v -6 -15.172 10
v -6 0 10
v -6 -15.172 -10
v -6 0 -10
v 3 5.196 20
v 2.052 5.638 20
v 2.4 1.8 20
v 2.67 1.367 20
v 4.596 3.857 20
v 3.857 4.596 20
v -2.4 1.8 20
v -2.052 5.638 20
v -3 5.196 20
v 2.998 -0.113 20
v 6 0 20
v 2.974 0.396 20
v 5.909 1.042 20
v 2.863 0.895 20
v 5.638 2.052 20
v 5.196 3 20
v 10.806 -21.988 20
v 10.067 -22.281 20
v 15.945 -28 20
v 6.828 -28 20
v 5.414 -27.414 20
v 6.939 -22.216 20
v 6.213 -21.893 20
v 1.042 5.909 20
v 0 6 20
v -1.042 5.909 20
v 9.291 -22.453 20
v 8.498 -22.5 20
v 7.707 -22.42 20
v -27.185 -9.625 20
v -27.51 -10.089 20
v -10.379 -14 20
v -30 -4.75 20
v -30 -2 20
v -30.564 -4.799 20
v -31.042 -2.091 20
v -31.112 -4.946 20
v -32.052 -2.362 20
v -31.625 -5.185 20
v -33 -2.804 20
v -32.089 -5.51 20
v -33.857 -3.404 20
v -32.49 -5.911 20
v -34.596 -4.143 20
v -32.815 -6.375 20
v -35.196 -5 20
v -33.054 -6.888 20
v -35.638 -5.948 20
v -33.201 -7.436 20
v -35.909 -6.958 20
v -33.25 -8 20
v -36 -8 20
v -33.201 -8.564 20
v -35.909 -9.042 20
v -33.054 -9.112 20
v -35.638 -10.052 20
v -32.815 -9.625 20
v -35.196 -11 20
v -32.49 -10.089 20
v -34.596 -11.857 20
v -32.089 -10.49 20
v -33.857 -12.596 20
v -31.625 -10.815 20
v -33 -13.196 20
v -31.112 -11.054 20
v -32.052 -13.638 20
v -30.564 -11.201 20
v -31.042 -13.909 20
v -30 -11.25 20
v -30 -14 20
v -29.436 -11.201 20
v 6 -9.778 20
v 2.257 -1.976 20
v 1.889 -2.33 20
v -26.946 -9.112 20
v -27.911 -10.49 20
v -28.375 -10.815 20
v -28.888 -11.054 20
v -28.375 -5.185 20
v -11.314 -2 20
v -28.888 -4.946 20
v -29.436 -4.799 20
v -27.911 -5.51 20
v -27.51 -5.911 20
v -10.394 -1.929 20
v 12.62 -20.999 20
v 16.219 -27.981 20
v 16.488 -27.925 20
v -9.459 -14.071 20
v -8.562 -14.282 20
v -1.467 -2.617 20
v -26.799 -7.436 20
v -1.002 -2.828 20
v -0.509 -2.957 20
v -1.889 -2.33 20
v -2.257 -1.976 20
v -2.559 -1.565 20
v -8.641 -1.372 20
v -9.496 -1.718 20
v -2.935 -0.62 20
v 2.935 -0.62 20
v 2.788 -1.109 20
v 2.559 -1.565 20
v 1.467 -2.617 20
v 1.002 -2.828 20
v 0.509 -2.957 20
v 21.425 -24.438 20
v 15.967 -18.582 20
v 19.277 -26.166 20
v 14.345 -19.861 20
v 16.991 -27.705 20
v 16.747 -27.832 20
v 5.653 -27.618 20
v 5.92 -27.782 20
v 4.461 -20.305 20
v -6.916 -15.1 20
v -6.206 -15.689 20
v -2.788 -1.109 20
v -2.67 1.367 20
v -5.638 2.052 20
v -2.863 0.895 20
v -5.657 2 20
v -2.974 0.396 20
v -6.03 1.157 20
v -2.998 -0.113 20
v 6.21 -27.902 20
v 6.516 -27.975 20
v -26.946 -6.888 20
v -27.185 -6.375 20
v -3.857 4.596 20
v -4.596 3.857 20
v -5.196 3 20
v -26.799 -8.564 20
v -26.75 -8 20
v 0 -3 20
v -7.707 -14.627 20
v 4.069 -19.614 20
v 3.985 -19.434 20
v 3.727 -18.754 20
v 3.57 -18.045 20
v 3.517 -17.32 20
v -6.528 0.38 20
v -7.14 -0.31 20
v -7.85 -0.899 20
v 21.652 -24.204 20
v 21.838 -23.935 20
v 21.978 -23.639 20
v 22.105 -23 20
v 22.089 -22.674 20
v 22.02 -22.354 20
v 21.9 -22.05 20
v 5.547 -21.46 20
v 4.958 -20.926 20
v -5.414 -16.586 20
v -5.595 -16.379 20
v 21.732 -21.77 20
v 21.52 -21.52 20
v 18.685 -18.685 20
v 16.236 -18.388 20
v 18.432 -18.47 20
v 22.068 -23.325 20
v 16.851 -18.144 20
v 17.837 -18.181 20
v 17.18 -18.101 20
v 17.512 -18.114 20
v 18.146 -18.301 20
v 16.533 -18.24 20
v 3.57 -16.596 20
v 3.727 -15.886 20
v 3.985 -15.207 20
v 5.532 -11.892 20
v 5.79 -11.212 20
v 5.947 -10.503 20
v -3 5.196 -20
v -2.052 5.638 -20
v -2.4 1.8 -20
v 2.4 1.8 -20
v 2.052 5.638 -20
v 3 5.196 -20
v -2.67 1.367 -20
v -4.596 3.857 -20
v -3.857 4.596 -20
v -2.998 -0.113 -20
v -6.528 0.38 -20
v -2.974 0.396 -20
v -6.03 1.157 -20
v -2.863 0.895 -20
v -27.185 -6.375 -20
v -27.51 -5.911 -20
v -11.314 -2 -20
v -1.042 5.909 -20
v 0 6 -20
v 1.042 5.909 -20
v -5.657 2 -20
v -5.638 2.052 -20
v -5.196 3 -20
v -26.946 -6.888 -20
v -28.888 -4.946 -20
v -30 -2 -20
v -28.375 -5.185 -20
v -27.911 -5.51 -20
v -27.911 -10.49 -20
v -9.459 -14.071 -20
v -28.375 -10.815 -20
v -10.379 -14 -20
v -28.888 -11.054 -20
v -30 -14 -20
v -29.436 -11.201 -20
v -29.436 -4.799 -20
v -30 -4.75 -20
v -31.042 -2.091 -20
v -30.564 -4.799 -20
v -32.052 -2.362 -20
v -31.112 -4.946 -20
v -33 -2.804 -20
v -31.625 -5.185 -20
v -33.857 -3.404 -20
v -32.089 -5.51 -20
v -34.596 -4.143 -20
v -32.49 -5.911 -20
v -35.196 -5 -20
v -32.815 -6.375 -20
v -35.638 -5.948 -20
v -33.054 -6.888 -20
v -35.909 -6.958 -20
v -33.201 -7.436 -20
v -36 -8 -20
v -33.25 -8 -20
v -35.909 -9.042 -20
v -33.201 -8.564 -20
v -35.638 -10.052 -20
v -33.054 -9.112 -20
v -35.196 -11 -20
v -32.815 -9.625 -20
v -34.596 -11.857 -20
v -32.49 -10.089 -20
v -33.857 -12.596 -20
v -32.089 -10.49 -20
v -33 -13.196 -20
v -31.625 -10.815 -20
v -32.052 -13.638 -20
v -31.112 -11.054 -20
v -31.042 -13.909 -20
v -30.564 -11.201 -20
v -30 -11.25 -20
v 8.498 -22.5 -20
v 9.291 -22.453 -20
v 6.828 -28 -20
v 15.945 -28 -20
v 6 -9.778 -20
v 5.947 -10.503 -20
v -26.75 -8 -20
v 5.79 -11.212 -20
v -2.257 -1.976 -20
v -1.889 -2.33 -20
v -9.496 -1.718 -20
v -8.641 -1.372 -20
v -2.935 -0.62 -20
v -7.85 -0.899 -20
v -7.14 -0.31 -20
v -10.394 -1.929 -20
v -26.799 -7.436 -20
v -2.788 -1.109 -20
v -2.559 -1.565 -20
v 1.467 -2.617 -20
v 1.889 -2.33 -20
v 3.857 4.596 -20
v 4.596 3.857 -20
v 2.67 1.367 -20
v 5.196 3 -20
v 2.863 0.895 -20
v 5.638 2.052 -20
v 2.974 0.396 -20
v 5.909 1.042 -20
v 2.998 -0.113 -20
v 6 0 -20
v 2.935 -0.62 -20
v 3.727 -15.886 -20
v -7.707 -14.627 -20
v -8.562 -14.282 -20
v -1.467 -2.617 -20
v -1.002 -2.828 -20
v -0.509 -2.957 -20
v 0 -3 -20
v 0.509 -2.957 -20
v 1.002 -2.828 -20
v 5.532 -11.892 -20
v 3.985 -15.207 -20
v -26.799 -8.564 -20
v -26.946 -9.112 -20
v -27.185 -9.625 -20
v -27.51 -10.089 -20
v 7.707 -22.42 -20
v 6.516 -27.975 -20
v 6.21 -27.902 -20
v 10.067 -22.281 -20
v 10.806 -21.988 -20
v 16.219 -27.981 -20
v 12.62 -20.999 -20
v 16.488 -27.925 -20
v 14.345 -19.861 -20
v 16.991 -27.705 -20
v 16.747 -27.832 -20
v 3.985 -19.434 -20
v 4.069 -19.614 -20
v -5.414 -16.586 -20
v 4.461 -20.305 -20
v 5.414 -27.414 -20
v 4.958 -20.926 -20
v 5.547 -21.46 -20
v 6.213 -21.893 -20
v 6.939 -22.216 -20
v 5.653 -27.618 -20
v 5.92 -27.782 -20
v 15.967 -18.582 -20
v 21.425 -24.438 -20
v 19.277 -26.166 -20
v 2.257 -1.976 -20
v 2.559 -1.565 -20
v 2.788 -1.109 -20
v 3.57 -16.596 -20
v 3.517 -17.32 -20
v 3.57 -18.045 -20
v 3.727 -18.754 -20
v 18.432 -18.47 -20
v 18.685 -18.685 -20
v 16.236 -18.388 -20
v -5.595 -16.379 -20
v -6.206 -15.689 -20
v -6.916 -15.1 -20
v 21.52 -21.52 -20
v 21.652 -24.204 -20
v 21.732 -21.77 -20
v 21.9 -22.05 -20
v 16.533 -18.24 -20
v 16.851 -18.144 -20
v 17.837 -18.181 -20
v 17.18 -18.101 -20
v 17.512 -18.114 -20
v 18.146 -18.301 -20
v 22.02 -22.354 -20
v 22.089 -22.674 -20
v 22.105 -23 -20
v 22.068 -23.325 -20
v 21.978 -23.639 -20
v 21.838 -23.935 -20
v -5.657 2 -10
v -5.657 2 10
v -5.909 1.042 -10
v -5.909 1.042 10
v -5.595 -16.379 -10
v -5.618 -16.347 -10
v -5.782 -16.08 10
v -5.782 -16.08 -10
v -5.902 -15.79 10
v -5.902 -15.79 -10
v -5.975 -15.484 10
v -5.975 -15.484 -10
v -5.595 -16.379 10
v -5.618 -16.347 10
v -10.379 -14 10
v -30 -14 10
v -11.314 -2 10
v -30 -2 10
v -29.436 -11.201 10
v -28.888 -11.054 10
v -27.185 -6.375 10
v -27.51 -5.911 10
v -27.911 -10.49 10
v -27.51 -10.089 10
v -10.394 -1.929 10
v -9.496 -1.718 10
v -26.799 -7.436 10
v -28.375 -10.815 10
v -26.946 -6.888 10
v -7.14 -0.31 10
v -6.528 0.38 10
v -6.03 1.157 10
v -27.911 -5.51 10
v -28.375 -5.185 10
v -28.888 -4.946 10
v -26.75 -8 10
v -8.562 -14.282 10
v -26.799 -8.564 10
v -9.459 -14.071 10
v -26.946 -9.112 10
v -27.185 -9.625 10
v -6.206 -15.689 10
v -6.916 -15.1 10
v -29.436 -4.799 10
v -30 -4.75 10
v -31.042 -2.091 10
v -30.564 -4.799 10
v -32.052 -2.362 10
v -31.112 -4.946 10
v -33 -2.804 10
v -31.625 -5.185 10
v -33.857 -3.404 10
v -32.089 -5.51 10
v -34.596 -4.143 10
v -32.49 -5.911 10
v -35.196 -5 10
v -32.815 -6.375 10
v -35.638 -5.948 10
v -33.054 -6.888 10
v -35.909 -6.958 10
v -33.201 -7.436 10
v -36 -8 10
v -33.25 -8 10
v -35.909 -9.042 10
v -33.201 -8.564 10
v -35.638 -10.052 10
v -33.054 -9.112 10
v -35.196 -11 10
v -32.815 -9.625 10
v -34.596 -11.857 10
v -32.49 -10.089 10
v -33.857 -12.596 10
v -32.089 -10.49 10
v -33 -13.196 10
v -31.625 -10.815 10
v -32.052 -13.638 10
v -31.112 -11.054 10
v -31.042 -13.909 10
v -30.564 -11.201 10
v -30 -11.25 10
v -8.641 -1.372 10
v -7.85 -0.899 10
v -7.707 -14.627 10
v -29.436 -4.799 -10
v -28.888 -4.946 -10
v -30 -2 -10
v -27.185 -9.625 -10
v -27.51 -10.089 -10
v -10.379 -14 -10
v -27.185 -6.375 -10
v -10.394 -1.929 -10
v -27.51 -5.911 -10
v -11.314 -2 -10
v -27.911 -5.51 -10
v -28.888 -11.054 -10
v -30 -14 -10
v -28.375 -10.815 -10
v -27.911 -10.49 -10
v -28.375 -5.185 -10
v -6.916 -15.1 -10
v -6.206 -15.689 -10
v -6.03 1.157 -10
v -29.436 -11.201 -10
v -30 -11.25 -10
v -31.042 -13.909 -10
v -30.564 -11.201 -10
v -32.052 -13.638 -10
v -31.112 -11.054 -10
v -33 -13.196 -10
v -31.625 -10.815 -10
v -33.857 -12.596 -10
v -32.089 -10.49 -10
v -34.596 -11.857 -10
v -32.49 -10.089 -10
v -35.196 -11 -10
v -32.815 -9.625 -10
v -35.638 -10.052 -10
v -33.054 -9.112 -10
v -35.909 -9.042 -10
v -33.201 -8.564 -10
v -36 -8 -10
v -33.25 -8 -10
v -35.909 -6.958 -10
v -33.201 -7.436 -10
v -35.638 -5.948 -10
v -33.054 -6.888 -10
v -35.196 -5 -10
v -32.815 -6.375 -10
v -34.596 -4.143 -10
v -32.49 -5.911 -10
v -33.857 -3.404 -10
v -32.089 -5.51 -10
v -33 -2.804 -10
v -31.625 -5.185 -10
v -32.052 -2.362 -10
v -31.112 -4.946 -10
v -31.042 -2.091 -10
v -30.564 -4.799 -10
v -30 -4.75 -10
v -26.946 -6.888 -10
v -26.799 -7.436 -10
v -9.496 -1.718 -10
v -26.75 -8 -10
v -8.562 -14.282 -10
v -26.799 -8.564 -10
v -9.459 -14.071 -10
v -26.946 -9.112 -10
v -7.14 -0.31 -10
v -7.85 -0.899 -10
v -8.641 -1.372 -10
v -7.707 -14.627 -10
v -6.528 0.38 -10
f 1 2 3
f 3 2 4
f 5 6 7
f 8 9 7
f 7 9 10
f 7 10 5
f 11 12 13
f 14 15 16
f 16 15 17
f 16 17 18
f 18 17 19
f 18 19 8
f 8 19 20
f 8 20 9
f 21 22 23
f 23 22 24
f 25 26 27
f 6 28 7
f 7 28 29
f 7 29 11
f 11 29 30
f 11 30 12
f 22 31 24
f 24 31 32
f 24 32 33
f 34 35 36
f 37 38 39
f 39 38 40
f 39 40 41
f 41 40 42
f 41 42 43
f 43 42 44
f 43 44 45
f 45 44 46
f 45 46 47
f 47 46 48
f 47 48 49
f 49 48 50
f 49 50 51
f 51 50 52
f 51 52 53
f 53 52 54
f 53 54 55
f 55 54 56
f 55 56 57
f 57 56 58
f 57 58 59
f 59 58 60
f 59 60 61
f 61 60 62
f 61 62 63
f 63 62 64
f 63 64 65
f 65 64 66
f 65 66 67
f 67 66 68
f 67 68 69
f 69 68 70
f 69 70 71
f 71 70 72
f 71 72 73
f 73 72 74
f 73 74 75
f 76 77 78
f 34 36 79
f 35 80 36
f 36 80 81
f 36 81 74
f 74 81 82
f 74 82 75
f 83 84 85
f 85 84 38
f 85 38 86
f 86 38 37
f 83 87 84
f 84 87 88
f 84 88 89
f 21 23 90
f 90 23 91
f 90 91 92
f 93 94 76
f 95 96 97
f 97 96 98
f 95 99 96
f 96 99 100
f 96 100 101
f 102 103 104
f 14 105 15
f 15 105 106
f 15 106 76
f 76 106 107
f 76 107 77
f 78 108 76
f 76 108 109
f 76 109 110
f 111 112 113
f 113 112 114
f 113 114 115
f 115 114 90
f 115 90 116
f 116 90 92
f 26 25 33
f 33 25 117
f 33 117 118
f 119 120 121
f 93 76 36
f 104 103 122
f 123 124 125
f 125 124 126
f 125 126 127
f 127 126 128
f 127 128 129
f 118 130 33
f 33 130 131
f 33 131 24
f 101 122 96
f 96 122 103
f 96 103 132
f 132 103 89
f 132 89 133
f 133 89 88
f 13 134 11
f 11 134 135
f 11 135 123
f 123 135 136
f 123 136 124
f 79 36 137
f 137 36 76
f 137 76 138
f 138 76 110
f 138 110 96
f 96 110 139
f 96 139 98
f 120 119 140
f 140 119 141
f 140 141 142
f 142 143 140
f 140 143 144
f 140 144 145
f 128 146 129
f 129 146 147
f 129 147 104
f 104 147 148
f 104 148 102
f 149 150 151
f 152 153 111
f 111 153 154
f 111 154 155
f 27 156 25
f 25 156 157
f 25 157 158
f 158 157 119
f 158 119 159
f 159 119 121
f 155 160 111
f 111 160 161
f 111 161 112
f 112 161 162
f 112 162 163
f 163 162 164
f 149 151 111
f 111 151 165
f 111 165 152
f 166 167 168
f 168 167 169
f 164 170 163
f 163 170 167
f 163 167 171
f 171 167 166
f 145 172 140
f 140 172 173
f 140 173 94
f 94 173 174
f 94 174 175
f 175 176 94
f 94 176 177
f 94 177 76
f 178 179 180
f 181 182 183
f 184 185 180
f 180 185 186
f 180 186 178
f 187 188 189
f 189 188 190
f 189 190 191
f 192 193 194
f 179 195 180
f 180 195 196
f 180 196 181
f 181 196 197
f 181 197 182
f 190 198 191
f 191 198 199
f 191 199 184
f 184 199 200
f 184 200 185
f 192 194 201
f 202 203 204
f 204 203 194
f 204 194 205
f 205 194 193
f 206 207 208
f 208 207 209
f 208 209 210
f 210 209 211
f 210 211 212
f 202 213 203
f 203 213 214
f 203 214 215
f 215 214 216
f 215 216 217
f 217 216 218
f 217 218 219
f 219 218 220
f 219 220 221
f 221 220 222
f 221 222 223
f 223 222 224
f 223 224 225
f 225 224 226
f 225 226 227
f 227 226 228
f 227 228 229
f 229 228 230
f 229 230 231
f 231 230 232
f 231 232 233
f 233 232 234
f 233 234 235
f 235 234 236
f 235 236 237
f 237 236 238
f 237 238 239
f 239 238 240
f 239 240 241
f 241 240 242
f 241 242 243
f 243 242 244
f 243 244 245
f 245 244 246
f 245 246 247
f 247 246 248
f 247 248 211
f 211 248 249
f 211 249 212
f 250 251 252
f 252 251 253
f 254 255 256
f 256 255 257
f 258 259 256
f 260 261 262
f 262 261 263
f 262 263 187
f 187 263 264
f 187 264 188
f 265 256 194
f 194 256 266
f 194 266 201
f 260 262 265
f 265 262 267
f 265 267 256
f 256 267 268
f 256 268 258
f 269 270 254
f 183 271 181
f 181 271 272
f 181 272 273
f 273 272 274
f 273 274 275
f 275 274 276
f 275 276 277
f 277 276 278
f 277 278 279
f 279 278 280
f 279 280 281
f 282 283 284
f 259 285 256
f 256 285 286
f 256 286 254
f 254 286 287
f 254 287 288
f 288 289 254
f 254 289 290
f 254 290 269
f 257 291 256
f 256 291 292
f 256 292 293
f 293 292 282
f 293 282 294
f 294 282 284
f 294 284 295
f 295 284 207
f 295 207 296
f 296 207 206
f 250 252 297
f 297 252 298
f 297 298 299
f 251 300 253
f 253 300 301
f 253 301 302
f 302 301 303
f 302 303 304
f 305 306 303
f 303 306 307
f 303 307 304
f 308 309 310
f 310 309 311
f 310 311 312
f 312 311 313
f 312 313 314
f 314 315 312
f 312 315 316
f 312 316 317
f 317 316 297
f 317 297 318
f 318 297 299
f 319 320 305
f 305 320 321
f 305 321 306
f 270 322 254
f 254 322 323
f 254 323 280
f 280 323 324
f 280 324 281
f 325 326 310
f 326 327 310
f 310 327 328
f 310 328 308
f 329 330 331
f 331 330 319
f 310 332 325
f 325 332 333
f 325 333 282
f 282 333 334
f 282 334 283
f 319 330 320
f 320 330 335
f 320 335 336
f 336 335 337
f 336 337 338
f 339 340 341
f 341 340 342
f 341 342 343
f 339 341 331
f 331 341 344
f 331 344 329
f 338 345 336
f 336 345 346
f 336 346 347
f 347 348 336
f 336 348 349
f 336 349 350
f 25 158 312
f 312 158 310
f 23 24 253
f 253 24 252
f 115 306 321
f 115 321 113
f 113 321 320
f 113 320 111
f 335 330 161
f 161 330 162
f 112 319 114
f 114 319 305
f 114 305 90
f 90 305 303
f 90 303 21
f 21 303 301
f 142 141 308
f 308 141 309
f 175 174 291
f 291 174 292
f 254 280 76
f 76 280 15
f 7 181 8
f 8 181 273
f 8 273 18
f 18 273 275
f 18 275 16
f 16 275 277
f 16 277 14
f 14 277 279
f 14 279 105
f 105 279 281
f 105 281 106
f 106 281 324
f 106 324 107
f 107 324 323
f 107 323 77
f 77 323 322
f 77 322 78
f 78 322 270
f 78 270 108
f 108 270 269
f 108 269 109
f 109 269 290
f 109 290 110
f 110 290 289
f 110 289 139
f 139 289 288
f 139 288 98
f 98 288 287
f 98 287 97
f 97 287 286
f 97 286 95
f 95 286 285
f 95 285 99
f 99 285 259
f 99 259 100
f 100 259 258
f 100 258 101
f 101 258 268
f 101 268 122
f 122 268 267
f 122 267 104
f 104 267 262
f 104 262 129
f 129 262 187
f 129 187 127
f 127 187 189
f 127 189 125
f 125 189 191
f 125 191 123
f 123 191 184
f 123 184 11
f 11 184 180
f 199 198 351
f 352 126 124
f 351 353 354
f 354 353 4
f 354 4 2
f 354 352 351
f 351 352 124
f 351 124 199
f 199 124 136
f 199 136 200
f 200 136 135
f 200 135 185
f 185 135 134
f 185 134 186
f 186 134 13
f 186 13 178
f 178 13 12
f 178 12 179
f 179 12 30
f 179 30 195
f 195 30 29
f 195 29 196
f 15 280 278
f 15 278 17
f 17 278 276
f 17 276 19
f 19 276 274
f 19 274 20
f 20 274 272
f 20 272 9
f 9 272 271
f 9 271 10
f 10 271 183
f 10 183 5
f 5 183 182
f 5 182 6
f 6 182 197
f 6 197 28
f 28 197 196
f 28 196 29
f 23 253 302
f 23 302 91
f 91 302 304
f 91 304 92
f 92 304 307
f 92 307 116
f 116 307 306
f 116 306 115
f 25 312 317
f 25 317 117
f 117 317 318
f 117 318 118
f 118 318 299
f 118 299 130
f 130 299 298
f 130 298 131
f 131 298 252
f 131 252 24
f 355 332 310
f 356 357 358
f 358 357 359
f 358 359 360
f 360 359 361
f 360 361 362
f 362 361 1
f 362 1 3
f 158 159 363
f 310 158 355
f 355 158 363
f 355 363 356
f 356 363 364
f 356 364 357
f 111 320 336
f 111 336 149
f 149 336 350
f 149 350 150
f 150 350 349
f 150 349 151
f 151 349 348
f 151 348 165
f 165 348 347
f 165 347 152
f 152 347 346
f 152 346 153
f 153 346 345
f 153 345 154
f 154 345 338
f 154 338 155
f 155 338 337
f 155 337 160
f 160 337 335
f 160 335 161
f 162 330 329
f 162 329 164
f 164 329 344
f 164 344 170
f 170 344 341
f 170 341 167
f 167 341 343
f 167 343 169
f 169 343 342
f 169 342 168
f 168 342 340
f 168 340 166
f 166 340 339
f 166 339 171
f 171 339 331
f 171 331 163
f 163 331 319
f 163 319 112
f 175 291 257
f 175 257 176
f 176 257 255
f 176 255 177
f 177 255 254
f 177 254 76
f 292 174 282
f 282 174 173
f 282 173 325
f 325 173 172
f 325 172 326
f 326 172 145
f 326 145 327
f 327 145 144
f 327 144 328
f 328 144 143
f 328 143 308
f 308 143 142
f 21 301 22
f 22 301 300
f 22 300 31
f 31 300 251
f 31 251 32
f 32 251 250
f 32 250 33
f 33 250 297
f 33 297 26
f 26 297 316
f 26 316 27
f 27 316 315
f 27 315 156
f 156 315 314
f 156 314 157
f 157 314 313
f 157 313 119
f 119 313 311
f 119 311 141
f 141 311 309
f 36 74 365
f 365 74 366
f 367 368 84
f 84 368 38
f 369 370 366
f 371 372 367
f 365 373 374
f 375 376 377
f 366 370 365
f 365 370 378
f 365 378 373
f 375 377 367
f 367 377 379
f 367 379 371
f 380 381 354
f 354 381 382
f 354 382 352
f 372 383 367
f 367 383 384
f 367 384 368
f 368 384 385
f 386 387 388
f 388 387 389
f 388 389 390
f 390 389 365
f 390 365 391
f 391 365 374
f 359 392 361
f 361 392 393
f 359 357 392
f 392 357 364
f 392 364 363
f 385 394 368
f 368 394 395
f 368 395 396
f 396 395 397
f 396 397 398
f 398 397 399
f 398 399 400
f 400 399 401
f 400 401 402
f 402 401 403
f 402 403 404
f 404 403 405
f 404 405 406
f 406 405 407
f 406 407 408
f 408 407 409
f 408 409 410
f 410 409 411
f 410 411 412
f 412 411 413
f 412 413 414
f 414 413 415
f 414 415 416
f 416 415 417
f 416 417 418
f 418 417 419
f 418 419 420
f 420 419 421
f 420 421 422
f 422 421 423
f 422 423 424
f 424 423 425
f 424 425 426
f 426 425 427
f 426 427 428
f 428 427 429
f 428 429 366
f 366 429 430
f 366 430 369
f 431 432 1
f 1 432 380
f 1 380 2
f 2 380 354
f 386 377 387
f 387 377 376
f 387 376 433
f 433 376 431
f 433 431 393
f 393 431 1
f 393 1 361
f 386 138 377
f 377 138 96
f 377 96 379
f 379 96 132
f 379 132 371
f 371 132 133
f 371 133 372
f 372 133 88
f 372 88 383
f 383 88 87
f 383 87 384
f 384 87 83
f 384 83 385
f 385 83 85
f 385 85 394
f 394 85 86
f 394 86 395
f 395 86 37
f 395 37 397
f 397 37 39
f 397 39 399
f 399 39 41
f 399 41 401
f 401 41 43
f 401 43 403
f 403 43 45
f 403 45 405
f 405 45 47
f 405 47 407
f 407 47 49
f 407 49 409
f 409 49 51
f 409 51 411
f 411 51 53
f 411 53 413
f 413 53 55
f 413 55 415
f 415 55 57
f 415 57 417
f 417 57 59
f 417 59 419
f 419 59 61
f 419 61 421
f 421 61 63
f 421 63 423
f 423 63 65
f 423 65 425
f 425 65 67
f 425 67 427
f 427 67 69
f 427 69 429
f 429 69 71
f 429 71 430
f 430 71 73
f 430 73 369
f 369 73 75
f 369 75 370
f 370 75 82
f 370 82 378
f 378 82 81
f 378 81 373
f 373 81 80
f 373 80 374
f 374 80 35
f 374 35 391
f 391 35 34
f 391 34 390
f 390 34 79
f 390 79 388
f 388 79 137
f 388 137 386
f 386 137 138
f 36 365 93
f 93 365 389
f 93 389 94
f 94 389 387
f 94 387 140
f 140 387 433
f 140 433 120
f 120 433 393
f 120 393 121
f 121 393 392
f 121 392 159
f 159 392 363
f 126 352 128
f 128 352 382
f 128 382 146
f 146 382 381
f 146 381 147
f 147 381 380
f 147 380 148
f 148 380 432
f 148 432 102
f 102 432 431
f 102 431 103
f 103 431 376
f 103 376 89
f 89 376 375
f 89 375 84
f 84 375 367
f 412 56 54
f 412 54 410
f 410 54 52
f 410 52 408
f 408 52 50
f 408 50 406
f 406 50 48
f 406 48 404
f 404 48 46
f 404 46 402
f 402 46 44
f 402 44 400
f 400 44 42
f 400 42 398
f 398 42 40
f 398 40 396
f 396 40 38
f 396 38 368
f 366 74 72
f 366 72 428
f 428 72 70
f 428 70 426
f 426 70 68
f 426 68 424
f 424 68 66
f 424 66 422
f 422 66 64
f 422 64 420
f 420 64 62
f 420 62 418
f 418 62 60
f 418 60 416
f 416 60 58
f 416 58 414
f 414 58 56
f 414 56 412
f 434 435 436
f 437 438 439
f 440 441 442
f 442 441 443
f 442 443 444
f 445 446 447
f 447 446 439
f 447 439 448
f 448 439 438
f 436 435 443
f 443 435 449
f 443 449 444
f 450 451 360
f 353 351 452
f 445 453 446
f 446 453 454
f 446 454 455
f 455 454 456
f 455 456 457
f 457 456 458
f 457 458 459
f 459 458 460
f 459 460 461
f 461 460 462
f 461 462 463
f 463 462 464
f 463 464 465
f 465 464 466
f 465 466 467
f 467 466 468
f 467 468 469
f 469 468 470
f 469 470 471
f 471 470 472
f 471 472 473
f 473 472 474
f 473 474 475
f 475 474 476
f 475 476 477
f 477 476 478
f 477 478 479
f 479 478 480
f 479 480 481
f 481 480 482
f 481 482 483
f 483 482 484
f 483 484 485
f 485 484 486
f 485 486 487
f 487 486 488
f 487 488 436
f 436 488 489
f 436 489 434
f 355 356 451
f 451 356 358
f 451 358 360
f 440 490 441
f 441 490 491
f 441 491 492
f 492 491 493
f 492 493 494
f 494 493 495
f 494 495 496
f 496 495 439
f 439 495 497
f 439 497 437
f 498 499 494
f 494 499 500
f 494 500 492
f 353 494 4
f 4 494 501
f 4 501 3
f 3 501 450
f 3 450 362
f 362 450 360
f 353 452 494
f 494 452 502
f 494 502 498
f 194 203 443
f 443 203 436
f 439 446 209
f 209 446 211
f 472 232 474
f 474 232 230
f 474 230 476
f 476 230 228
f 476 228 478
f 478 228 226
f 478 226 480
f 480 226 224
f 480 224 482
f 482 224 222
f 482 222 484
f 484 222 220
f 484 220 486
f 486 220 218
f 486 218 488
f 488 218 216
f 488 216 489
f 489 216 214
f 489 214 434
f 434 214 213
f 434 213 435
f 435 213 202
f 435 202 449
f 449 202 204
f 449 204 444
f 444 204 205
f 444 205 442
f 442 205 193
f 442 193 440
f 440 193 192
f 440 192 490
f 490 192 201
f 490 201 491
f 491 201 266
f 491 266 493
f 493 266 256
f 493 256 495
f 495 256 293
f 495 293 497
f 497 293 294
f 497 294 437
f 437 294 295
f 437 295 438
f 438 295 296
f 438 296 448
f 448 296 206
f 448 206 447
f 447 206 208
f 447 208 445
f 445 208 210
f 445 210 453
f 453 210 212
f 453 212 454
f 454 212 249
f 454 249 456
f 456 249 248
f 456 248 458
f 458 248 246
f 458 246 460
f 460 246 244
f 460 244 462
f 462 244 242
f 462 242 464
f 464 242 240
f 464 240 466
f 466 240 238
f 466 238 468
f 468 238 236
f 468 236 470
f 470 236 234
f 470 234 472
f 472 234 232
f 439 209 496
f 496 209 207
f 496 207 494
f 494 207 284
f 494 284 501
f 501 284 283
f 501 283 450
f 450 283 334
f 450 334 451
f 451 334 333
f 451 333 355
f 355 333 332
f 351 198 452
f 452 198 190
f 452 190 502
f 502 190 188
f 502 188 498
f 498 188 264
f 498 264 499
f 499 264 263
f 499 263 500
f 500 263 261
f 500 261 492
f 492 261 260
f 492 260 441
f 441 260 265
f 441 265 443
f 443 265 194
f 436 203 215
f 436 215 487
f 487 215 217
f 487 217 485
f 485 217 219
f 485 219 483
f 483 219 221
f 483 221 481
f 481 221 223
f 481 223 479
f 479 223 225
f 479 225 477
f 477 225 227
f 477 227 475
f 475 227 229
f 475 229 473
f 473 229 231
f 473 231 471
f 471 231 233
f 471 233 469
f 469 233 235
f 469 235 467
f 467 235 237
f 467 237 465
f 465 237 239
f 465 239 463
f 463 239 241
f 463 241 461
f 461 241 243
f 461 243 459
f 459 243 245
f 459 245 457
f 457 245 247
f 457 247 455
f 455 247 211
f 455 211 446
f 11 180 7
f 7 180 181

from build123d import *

# Parameters (mm, degrees)
SKETCH2_R            = 3
BOSS_EXTRUDE1_DEPTH  = 20
FILLET1_R            = 6
FILLET2_R            = 2
FILLET4_R            = 5
SKETCH3_W            = 30
SKETCH3_H            = 12
SKETCH3_R            = 3.25
BOSS_EXTRUDE2_DEPTH  = 10
FILLET3_R            = 6
FILLET3_OF_MIRROR1_R = 6
BOSS_EXTRUDE3_DEPTH  = 40


# Some blends are built 0.0001 mm under size
with BuildPart() as part:
    # Sketch2 → Boss-Extrude1 (new, symmetric)
    with BuildSketch(Plane.XY):
        with BuildLine():
            Line((-6, 6), (6, 6))
            Line((6, 6), (6, -10.886905517))
            Line((6, -10.886905517), (3, -17.320426279))
            Line((3, -17.320426279), (6, -23.75394704))
            ThreePointArc((6, -23.75394704), (12.097077324, -21.305180596), (17.324116139, -17.324116139))
            Line((17.324116139, -17.324116139), (22.980970389, -22.980970389))
            ThreePointArc((22.980970389, -22.980970389), (19.899357283, -25.695633476), (16.5, -28))
            Line((16.5, -28), (6, -28))
            Line((6, -28), (-6, -16))
            Line((-6, -16), (-6, 6))
        make_face()
        Circle(SKETCH2_R, mode=Mode.SUBTRACT)
    extrude(amount=BOSS_EXTRUDE1_DEPTH, both=True)

    # Fillet1
    fillet1_edges = [part.edges().sort_by_distance(p)[0] for p in [
        (6, 6, 0),
        (-6, 6, 0),
    ]]
    fillet(fillet1_edges, radius=FILLET1_R - 0.0001)  # a hair under: the kernel refuses the full size

    # Fillet2
    fillet2_edges = [part.edges().sort_by_distance(p)[0] for p in [
        (17.324116139, -17.324116139, 0),
        (22.980970389, -22.980970389, 0),
        (16.5, -28, 0),
        (6, -28, 0),
        (-6, -16, 0),
    ]]
    fillet(fillet2_edges, radius=FILLET2_R)

    # Fillet4
    fillet4_edges = [part.edges().sort_by_distance(p)[0] for p in [
        (6, -10.886905517, 0),
        (3, -17.320426279, 0),
        (6, -23.75394704, 0),
    ]]
    fillet(fillet4_edges, radius=FILLET4_R)

    # Sketch3 → Boss-Extrude2 (add)
    with BuildSketch(Plane.XY.offset(20)):
        with Locations((-21, -8)):
            Rectangle(SKETCH3_W, SKETCH3_H)
        with Locations((-30, -8)):
            Circle(SKETCH3_R, mode=Mode.SUBTRACT)
    boss_extrude2 = extrude(amount=-BOSS_EXTRUDE2_DEPTH)

    # Fillet3
    # the kernel refuses this fillet: 6 mm, written as the material it adds along each edge
    with BuildSketch(Plane(origin=(-6, -14, 20), x_dir=(0.16798992441845362, -0.9857887122978647, 0), z_dir=(0, 0, -1))) as fillet3_piece_1:
        with BuildLine():
            CenterArc((5.179174836, 5.324294957), FILLET3_R, 189.670969531, 52.875183342)
            Line((-0.735557438, 4.316355411), (-1.327030665, 4.215561456))
            Line((-1.327030665, 4.215561456), (-0.591473227, -0.100793955))
            Line((-0.591473227, -0.100793955), (0.100793955, -0.591473227))
            ThreePointArc((0.100793955, -0.591473227), (1.255717271, -0.394660789), (2.136350707, -0.532429496))
            Line((2.136350707, -0.532429496), (2.412971083, 0))
        make_face()
    extrude(amount=10)
    with BuildSketch(Plane(origin=(-6, -2, 20), x_dir=(0.08546746952976336, 0.9963409615448815, 0), z_dir=(0, 0, -1))) as fillet3_piece_2:
        with BuildLine():
            CenterArc((5.523894047, -5.807099434), FILLET3_R, 104.567976289, 70.529116987)
            Line((-0.454151722, -5.294294617), (-1.051956299, -5.243014135))
            Line((-1.051956299, -5.243014135), (-0.597804577, 0.051280482))
            Line((-0.597804577, 0.051280482), (0.051280482, 0.597804577))
            ThreePointArc((0.051280482, 0.597804577), (2.044062039, 0.426861091), (3.863806292, 0.580709943))
            Line((3.863806292, 0.580709943), (4.014723361, 0))
        make_face()
    extrude(amount=10)
    # the kernel refuses this fillet: 6 mm, written as the material it takes off along each edge
    with BuildSketch(Plane(origin=(-36, -14, 35), x_dir=(0, 1, 0), z_dir=(0, 0, -1)), Plane(origin=(-36, -2, 35), x_dir=(1, 0, 0), z_dir=(0, 0, -1))) as fillet3_2_piece_1:
        with BuildLine():
            CenterArc((FILLET3_R, FILLET3_R), FILLET3_R, 180, 90)
            Line((0, FILLET3_R), (0, 0))
            Line((0, 0), (FILLET3_R, 0))
        make_face()
    extrude(amount=40, mode=Mode.SUBTRACT)

    # Mirror1: Boss-Extrude2 across plane
    add(boss_extrude2.mirror(Plane.XY))

    # Fillet3 of Mirror1
    # the kernel refuses this fillet: 6 mm, written as the material it adds along each edge
    with BuildSketch(Plane(origin=(-6, -14, -20), x_dir=(0.16798992441845362, -0.9857887122978647, 0), z_dir=(0, 0, 1))) as fillet3_of_mirror1_piece_1:
        with BuildLine():
            CenterArc((5.179174836, -5.324294957), FILLET3_OF_MIRROR1_R, 117.453847127, 52.875183342)
            Line((-0.735557438, -4.316355411), (-1.327030665, -4.215561456))
            Line((-1.327030665, -4.215561456), (-0.591473227, 0.100793955))
            Line((-0.591473227, 0.100793955), (0.100793955, 0.591473227))
            ThreePointArc((0.100793955, 0.591473227), (1.255717271, 0.394660789), (2.136350707, 0.532429496))
            Line((2.136350707, 0.532429496), (2.412971083, 0))
        make_face()
    extrude(amount=10)
    with BuildSketch(Plane(origin=(-6, -2, -20), x_dir=(0.08546746952976336, 0.9963409615448815, 0), z_dir=(0, 0, 1))) as fillet3_of_mirror1_piece_2:
        with BuildLine():
            CenterArc((5.523894047, 5.807099434), FILLET3_OF_MIRROR1_R, 184.902906724, 70.529116987)
            Line((-0.454151722, 5.294294617), (-1.051956299, 5.243014135))
            Line((-1.051956299, 5.243014135), (-0.597804577, -0.051280482))
            Line((-0.597804577, -0.051280482), (0.051280482, -0.597804577))
            ThreePointArc((0.051280482, -0.597804577), (2.044062039, -0.426861091), (3.863806292, -0.580709943))
            Line((3.863806292, -0.580709943), (4.014723361, 0))
        make_face()
    extrude(amount=10)
    # the kernel refuses this fillet: 6 mm, written as the material it takes off along each edge
    with BuildSketch(Plane(origin=(-36, -14, -35), x_dir=(1, 0, 0), z_dir=(0, 0, 1)), Plane(origin=(-36, -2, -35), x_dir=(0, -1, 0), z_dir=(0, 0, 1))) as fillet3_of_mirror1_2_piece_1:
        with BuildLine():
            CenterArc((FILLET3_OF_MIRROR1_R, FILLET3_OF_MIRROR1_R), FILLET3_OF_MIRROR1_R, 180, 90)
            Line((0, FILLET3_OF_MIRROR1_R), (0, 0))
            Line((0, 0), (FILLET3_OF_MIRROR1_R, 0))
        make_face()
    extrude(amount=40, mode=Mode.SUBTRACT)

    # Sketch4 → Boss-Extrude3 (add)
    with BuildSketch(Plane(origin=(0, 0, -20), x_dir=(-1, 0, 0), z_dir=(0, 0, -1))):
        with BuildLine():
            Line((-2.4, 1.8), (2.4, 1.8))
            ThreePointArc((2.4, 1.8), (0, 3), (-2.4, 1.8))
        make_face()
    extrude(amount=-BOSS_EXTRUDE3_DEPTH)


solid = part.part
